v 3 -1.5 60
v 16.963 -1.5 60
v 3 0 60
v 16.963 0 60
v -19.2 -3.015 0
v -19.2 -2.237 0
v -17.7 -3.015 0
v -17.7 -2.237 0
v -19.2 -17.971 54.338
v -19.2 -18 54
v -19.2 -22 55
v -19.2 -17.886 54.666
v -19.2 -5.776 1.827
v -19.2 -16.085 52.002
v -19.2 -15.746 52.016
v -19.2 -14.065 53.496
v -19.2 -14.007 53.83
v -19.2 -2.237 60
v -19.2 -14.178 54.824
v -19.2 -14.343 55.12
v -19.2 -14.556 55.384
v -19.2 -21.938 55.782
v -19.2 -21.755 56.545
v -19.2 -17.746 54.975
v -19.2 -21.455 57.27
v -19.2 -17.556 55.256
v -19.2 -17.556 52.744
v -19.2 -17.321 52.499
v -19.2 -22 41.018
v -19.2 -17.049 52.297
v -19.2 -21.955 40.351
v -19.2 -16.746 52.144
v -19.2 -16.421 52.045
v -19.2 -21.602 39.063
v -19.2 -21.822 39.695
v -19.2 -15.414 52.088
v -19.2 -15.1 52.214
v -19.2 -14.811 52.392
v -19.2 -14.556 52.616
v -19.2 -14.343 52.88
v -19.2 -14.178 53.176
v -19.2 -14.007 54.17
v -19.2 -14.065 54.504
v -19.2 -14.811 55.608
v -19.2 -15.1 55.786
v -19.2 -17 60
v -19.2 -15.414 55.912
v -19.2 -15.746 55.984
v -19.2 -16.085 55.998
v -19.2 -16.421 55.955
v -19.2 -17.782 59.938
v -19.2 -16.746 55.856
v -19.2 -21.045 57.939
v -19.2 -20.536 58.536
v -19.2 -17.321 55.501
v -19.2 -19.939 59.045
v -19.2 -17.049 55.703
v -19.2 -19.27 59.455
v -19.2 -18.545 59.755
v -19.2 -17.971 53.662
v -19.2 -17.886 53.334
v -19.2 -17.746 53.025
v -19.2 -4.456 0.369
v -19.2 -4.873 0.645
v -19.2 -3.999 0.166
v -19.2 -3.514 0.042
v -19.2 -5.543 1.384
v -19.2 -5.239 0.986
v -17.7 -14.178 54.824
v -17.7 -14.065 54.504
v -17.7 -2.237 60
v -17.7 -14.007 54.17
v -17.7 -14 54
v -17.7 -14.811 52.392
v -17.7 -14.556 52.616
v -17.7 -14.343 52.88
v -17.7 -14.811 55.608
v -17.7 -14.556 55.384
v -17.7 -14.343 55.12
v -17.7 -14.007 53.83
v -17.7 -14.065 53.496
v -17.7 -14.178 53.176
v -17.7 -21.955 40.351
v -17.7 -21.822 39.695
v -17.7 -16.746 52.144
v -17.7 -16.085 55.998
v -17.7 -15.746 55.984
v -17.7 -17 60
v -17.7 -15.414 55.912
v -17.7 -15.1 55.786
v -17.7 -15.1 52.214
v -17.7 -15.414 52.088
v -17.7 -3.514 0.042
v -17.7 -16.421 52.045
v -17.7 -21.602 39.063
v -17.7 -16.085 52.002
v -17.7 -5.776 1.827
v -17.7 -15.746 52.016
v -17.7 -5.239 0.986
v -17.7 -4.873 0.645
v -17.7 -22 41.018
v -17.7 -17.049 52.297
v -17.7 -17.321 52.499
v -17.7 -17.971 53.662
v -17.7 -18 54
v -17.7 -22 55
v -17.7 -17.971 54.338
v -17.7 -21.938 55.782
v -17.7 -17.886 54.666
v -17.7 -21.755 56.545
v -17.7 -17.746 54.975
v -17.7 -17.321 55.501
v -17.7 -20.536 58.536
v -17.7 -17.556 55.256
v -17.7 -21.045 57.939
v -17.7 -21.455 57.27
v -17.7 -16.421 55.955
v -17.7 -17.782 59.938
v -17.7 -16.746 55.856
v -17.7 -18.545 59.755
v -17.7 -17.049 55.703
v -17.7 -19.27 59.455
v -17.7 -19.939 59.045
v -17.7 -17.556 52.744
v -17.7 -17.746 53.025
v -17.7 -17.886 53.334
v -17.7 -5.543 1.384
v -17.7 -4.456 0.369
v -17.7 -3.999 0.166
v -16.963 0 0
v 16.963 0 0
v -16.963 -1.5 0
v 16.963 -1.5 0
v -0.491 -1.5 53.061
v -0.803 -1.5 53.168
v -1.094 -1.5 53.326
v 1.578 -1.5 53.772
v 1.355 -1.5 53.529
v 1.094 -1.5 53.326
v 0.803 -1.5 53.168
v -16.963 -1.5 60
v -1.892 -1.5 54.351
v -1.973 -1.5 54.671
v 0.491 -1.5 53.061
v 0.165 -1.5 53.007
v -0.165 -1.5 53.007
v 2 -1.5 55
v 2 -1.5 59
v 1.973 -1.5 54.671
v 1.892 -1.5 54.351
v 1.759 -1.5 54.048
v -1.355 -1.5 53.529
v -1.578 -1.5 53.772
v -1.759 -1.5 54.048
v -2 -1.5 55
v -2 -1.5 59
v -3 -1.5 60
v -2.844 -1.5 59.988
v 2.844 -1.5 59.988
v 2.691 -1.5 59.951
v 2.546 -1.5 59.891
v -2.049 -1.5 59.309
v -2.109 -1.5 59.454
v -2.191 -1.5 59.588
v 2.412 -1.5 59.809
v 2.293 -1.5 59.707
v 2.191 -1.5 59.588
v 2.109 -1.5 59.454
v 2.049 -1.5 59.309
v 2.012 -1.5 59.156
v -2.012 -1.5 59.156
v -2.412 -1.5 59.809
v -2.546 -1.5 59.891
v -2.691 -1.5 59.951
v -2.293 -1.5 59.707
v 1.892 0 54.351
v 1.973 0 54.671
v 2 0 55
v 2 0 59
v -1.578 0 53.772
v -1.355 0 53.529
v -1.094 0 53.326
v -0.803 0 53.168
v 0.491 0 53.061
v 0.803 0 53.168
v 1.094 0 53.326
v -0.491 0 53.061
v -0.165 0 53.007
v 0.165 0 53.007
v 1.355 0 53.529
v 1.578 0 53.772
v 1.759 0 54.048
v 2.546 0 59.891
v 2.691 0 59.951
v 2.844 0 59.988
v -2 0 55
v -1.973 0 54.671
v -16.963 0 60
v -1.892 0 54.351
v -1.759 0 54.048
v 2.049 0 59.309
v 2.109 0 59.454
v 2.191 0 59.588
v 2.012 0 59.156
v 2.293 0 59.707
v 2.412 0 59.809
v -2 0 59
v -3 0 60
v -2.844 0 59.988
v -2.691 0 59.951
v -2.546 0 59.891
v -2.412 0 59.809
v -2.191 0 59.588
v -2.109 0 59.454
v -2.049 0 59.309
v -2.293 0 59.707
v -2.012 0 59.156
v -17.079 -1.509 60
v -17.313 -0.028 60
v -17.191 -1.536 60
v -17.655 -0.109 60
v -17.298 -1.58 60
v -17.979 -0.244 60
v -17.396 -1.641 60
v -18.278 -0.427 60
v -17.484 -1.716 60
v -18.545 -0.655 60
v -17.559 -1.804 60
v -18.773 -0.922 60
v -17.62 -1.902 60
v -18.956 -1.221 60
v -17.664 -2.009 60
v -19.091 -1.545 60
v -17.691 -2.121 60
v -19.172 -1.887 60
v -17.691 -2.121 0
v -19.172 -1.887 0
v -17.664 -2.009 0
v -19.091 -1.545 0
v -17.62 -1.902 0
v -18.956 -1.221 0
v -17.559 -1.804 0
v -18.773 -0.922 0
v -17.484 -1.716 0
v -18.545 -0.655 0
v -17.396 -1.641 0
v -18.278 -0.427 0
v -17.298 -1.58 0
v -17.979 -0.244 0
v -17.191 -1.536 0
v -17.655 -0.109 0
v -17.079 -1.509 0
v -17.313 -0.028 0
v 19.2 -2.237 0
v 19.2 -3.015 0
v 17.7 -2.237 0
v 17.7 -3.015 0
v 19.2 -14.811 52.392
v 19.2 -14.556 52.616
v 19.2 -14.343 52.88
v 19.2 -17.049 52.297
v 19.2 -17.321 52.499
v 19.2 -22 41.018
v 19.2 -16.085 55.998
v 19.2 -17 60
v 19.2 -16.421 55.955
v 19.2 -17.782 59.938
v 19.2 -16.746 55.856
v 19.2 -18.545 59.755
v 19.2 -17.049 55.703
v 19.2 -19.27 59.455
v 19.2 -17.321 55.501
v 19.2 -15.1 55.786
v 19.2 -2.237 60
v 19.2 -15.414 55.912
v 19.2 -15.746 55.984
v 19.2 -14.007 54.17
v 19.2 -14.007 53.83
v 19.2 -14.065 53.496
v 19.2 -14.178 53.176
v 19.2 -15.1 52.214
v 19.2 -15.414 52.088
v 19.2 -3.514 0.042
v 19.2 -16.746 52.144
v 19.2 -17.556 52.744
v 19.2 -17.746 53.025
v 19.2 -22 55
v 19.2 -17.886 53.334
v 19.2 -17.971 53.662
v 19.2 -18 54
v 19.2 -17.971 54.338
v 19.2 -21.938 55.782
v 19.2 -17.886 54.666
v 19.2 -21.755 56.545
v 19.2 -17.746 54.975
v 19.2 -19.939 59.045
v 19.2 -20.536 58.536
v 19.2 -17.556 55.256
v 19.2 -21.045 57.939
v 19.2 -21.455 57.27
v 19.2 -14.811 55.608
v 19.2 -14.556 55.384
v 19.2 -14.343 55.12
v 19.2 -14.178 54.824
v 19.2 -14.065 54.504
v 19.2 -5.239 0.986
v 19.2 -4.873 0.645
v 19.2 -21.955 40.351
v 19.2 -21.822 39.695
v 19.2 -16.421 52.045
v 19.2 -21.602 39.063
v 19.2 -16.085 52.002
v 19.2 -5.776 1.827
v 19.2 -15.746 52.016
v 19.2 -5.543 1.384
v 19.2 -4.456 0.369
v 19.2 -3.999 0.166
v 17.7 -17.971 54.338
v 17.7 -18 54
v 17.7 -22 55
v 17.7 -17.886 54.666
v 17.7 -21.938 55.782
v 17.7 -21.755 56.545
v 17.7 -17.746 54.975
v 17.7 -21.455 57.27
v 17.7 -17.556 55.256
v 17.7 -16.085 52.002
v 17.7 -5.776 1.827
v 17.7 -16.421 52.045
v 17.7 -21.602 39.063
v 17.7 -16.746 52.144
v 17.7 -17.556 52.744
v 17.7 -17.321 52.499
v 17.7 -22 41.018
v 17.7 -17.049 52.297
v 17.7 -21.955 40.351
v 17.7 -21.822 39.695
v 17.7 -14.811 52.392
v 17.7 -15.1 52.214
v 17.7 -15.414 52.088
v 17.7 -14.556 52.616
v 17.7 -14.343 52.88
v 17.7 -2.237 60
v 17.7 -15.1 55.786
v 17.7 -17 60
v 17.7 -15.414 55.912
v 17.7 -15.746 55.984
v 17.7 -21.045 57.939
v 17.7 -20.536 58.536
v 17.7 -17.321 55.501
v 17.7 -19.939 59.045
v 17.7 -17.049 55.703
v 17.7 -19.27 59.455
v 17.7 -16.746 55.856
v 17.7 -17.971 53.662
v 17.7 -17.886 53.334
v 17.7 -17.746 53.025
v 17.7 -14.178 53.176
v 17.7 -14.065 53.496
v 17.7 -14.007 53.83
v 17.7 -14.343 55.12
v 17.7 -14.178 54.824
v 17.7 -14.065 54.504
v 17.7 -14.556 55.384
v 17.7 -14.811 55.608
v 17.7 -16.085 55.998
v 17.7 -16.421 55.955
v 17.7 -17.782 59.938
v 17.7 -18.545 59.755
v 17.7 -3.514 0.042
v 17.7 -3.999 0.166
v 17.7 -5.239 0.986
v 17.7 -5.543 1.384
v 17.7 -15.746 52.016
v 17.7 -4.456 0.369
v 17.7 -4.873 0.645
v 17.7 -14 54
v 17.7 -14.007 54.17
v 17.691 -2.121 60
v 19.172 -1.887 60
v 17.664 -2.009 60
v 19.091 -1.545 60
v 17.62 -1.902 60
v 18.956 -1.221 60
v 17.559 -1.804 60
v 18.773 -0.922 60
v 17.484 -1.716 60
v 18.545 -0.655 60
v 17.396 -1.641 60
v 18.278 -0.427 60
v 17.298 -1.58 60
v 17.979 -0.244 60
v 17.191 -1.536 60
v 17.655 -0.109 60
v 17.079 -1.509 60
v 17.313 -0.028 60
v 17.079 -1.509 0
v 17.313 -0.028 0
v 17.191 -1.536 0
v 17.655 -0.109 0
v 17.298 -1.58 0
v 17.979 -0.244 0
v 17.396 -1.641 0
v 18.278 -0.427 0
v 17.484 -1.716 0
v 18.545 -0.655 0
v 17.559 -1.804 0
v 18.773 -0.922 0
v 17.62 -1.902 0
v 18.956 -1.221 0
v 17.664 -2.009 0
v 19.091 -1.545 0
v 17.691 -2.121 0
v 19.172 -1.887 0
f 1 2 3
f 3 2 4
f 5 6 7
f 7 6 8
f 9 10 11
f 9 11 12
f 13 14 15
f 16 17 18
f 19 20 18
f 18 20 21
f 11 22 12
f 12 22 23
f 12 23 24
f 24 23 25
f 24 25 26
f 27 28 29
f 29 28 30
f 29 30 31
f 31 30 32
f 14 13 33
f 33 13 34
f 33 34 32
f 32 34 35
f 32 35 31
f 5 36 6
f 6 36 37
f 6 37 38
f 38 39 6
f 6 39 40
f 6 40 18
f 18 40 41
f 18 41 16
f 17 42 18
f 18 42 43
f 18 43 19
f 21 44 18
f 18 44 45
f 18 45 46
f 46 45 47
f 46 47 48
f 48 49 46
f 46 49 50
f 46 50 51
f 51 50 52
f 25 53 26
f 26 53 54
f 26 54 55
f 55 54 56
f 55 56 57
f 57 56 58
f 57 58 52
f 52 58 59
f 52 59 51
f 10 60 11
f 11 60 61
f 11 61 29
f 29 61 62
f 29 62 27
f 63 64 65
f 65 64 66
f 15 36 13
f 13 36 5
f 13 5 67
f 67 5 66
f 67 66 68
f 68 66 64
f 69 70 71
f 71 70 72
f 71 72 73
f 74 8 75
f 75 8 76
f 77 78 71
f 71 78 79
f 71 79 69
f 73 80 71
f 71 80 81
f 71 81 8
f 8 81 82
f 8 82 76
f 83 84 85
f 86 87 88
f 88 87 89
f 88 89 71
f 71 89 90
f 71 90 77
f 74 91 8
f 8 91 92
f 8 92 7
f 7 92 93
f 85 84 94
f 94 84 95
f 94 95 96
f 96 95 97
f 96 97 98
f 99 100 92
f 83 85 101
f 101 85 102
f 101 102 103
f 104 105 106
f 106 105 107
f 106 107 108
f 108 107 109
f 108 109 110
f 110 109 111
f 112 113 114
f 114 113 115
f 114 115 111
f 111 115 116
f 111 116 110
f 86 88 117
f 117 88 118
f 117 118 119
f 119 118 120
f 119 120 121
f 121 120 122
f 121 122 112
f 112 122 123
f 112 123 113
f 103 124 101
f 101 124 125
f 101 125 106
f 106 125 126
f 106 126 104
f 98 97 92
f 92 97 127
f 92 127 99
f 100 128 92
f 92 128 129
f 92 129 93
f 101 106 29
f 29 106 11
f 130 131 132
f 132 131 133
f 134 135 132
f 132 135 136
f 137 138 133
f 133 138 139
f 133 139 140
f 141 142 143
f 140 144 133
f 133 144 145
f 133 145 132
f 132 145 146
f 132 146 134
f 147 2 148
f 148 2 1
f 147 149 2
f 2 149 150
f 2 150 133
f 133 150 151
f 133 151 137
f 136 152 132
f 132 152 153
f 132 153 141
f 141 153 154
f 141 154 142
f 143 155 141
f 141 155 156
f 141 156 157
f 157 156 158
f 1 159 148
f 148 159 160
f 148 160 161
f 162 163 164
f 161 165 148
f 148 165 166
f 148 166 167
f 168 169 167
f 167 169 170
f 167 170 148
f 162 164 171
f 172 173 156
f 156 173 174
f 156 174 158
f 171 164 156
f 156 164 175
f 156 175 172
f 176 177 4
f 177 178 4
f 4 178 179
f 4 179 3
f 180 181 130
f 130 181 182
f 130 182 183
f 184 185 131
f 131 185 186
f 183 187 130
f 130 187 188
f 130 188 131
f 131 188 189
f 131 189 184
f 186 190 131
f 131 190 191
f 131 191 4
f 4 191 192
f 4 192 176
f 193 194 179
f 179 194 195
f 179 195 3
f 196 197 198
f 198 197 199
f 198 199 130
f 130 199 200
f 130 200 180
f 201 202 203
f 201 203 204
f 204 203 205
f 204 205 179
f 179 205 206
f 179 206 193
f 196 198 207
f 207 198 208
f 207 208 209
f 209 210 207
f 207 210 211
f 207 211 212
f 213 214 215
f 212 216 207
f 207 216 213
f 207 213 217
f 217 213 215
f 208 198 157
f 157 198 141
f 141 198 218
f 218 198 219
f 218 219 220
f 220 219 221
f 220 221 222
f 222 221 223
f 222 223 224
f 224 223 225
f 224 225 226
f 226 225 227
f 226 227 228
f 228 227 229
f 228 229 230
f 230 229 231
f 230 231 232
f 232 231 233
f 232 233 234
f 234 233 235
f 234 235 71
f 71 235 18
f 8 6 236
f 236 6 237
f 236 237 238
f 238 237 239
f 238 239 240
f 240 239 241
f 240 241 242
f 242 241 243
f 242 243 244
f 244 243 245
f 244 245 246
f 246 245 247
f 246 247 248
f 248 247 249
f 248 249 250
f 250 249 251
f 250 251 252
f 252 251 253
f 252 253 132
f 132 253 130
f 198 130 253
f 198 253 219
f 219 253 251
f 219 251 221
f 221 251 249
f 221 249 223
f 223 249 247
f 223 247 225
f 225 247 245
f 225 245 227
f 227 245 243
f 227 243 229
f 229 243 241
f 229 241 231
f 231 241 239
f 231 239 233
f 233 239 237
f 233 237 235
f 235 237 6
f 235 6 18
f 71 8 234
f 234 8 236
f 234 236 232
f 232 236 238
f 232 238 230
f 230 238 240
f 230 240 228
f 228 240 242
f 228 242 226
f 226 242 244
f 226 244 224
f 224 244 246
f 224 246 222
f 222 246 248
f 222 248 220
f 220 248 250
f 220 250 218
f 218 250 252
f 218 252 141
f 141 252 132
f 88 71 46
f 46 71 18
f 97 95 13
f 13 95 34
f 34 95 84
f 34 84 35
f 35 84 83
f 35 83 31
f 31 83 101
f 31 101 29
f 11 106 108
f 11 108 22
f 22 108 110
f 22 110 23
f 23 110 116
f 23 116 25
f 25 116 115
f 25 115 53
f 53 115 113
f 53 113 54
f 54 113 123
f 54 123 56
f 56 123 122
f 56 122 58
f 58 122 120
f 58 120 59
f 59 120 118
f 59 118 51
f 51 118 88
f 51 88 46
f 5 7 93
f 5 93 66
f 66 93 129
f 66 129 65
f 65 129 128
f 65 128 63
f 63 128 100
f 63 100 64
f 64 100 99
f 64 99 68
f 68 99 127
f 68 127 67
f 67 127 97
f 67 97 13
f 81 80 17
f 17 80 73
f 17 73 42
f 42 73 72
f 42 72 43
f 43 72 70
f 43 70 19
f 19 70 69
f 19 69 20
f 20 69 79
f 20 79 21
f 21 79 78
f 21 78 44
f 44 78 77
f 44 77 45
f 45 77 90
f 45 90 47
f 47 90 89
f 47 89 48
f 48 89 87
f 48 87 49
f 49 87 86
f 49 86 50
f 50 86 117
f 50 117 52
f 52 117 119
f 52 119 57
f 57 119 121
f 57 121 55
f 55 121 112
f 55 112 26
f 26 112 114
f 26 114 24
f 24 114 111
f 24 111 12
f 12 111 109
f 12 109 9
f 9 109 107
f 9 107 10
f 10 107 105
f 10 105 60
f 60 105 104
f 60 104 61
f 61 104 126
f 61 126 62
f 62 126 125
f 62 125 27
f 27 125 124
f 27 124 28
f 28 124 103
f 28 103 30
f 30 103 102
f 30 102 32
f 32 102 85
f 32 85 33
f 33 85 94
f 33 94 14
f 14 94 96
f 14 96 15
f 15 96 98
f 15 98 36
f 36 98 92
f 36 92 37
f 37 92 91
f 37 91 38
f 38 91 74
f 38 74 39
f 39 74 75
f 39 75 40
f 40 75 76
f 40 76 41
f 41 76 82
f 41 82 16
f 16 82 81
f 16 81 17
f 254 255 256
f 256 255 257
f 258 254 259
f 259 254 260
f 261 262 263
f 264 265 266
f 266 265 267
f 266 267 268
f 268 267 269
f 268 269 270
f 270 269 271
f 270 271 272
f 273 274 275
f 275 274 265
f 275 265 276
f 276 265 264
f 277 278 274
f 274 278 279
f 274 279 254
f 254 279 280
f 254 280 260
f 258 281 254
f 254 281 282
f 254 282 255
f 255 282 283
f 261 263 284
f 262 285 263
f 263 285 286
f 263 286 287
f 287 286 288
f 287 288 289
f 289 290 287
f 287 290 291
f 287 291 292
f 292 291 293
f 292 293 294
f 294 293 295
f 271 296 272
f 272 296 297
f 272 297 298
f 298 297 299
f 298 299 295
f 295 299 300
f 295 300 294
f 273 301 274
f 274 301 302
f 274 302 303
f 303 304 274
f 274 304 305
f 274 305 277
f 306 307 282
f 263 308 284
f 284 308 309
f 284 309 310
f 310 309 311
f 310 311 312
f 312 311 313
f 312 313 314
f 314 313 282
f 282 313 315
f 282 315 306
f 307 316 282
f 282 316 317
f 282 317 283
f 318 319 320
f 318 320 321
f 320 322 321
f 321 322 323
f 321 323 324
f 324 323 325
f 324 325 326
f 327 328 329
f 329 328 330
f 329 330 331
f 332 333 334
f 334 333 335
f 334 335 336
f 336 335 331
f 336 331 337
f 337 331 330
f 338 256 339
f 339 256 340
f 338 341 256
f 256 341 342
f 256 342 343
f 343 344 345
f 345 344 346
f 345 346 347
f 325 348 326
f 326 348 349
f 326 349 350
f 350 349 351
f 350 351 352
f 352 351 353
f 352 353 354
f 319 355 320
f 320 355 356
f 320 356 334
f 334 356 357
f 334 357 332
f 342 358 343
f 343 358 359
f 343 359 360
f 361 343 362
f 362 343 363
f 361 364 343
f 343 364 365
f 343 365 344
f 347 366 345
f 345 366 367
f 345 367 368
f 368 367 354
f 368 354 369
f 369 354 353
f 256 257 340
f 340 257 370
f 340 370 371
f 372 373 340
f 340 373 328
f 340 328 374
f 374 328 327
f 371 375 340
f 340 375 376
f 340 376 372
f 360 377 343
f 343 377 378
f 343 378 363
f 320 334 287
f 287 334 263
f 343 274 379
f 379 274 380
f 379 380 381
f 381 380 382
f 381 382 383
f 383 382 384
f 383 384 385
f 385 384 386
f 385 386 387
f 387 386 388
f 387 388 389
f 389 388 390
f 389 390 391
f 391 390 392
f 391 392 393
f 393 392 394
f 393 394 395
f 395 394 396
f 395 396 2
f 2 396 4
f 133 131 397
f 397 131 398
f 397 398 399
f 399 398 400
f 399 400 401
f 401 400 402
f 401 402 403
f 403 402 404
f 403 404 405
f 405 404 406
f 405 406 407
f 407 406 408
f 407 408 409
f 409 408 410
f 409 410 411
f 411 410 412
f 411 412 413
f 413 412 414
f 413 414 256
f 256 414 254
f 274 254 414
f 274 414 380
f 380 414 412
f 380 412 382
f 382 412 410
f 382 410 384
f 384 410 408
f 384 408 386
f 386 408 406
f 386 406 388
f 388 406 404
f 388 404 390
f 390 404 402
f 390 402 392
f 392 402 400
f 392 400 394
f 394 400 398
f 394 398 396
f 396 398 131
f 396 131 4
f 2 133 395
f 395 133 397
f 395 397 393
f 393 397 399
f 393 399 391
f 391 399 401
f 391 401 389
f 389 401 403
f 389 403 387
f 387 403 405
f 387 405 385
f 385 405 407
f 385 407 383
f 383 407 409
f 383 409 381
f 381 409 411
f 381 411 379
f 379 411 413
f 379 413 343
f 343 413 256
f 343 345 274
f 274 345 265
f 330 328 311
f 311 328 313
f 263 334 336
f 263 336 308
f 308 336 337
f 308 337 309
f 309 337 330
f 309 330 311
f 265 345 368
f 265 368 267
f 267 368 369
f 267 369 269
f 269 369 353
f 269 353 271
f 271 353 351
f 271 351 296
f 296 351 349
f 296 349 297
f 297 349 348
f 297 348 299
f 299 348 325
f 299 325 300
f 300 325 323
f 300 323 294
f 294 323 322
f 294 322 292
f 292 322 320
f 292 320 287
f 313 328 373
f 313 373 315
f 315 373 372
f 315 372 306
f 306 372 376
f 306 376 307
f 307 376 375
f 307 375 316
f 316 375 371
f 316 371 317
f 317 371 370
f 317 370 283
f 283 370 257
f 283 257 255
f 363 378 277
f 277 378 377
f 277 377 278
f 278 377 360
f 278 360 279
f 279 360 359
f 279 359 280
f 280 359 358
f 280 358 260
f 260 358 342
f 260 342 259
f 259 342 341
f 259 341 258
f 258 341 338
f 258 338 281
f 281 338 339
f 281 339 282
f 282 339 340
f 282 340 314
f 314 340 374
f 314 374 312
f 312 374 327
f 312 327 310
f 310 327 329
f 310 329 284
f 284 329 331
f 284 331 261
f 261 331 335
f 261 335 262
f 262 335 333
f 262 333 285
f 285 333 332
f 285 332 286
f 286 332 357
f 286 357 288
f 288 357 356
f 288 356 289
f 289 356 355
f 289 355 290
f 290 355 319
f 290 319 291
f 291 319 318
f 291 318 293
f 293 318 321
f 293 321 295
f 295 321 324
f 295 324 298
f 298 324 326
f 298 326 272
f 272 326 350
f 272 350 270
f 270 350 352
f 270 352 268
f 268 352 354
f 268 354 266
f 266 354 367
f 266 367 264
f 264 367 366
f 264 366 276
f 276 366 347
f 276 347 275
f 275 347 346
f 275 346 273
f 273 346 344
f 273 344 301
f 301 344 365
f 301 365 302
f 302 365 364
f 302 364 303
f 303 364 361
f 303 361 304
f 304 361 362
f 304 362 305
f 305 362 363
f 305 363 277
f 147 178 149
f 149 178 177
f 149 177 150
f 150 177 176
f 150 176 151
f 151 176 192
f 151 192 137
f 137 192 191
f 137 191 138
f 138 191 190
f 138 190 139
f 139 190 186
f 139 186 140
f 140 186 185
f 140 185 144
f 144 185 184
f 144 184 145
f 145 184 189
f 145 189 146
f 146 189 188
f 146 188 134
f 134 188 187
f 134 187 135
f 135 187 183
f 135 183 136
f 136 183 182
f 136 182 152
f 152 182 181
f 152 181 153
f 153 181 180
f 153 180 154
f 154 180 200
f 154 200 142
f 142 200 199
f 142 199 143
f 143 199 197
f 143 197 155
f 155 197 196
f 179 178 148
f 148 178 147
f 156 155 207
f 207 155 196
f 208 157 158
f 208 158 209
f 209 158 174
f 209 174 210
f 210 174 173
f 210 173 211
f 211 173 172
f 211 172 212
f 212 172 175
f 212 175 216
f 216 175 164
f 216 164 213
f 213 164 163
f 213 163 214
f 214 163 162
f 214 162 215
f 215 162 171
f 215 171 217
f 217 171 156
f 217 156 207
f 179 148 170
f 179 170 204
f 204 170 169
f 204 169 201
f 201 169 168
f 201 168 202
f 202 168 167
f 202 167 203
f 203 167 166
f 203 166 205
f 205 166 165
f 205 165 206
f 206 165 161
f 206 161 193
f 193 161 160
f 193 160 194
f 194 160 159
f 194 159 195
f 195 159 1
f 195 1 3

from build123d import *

# Parameters (mm, degrees)
SKETCH1_W                    = 17.7
SKETCH1_H                    = 60
BASE_FLANGE2_DEPTH           = 1.5
EDGE_FLANGE2_STRIP_W         = 7.4732
EDGE_FLANGE2_STRIP_H         = 1.5
EDGE_FLANGE2_STRIP_CUT_DEPTH = 60
EDGE_FLANGE2_DEPTH           = 60
CUT_EXTRUDE5_DEPTH           = 1.5
FILLET4_R                    = 5
FILLET5_R                    = 3
SKETCH22_R                   = 2
CUT_EXTRUDE6_DEPTH           = 1.5
CUT_EXTRUDE7_REACH           = 68.728
FILLET6_R                    = 1


# Sheet-metal steps are written as plain solids
with BuildPart() as part:
    # Sketch1 → Base-Flange2 (new body)
    with BuildSketch(Plane(origin=(0, 0, 0), x_dir=(1, 0, 0), z_dir=(0, 1, 0))):
        with Locations((-8.85, -30)):
            Rectangle(SKETCH1_W, SKETCH1_H)
    extrude(amount=-BASE_FLANGE2_DEPTH)

    # Edge-Flange2 strip (across the edge) → Edge-Flange2 strip cut (cut)
    with BuildSketch(Plane(origin=(-17.7, -1.5, 60), x_dir=(1, 0, 0), z_dir=(0, 0, -1))):
        with Locations((-3, -0.75)):
            Rectangle(EDGE_FLANGE2_STRIP_W, EDGE_FLANGE2_STRIP_H)
    extrude(amount=EDGE_FLANGE2_STRIP_CUT_DEPTH, mode=Mode.SUBTRACT)

    # Edge-Flange2 section (across the edge) → Edge-Flange2 (add)
    with BuildSketch(Plane(origin=(-17.7, -1.5, 60), x_dir=(1, 0, 0), z_dir=(0, 0, -1))):
        with BuildLine():
            Line((-1.5, 0.7366), (-1.5, 20.5))
            Line((-1.5, 20.5), (0, 20.5))
            Line((0, 20.5), (0, 0.7366))
            ThreePointArc((0, 0.7366), (0.215745145, 0.215745145), (0.7366, 0))
            Line((0.7366, 0), (0.7366, -1.5))
            ThreePointArc((0.7366, -1.5), (-0.844915027, -0.844915027), (-1.5, 0.7366))
        make_face()
    extrude(amount=EDGE_FLANGE2_DEPTH)

    # Sketch20 → Cut-Extrude5 (cut)
    with BuildSketch(Plane.ZY.offset(19.2)):
        Polygon((0, -5), (40, -22), (0, -22), align=None)
    extrude(amount=-CUT_EXTRUDE5_DEPTH, mode=Mode.SUBTRACT)

    # Fillet4
    fillet4_edges = [part.edges().sort_by_distance(p)[0] for p in [
        (-18.45, -22, 60),
        (-18.45, -22, 40),
    ]]
    fillet(fillet4_edges, radius=FILLET4_R)

    # Fillet5
    fillet5_edges = [part.edges().sort_by_distance(p)[0] for p in [
        (-18.45, -5, 0),
    ]]
    fillet(fillet5_edges, radius=FILLET5_R)

    # Sketch22 → Cut-Extrude6 (cut)
    with BuildSketch(Plane.ZY.offset(19.2)):
        with Locations(Location((54, -16, 0), (0, 0, 270))):
            Circle(SKETCH22_R)
    extrude(amount=-CUT_EXTRUDE6_DEPTH, mode=Mode.SUBTRACT)

    # Mirror1: part across plane


with BuildPart() as part_1:
    add(part.part)
    add(part.part.mirror(Plane(origin=(0, -1.5, 60), x_dir=(0, 0, 1), z_dir=(1, 0, 0))))

    # Sketch28 → Cut-Extrude7 (cut, up to next)
    with BuildSketch(Plane(origin=(0, 0, 0), x_dir=(1, 0, 0), z_dir=(0, 1, 0)), mode=Mode.PRIVATE) as cut_extrude7_sk1:
        with BuildLine():
            Line((2, -55), (2, -60))
            Line((2, -60), (-2, -60))
            Line((-2, -60), (-2, -55))
            ThreePointArc((-2, -55), (0, -53), (2, -55))
        make_face()
    cut_extrude7_tool1 = extrude(cut_extrude7_sk1.sketch, amount=-CUT_EXTRUDE7_REACH, mode=Mode.PRIVATE) & part_1.part
    add(cut_extrude7_tool1.solids().sort_by_distance((0, 0, 56.699439))[0], mode=Mode.SUBTRACT)

    # Fillet6
    fillet6_edges = [part_1.edges().sort_by_distance(p)[0] for p in [
        (2, -0.75, 60),
        (-2, -0.75, 60),
    ]]
    fillet(fillet6_edges, radius=FILLET6_R)


solid = part_1.part
